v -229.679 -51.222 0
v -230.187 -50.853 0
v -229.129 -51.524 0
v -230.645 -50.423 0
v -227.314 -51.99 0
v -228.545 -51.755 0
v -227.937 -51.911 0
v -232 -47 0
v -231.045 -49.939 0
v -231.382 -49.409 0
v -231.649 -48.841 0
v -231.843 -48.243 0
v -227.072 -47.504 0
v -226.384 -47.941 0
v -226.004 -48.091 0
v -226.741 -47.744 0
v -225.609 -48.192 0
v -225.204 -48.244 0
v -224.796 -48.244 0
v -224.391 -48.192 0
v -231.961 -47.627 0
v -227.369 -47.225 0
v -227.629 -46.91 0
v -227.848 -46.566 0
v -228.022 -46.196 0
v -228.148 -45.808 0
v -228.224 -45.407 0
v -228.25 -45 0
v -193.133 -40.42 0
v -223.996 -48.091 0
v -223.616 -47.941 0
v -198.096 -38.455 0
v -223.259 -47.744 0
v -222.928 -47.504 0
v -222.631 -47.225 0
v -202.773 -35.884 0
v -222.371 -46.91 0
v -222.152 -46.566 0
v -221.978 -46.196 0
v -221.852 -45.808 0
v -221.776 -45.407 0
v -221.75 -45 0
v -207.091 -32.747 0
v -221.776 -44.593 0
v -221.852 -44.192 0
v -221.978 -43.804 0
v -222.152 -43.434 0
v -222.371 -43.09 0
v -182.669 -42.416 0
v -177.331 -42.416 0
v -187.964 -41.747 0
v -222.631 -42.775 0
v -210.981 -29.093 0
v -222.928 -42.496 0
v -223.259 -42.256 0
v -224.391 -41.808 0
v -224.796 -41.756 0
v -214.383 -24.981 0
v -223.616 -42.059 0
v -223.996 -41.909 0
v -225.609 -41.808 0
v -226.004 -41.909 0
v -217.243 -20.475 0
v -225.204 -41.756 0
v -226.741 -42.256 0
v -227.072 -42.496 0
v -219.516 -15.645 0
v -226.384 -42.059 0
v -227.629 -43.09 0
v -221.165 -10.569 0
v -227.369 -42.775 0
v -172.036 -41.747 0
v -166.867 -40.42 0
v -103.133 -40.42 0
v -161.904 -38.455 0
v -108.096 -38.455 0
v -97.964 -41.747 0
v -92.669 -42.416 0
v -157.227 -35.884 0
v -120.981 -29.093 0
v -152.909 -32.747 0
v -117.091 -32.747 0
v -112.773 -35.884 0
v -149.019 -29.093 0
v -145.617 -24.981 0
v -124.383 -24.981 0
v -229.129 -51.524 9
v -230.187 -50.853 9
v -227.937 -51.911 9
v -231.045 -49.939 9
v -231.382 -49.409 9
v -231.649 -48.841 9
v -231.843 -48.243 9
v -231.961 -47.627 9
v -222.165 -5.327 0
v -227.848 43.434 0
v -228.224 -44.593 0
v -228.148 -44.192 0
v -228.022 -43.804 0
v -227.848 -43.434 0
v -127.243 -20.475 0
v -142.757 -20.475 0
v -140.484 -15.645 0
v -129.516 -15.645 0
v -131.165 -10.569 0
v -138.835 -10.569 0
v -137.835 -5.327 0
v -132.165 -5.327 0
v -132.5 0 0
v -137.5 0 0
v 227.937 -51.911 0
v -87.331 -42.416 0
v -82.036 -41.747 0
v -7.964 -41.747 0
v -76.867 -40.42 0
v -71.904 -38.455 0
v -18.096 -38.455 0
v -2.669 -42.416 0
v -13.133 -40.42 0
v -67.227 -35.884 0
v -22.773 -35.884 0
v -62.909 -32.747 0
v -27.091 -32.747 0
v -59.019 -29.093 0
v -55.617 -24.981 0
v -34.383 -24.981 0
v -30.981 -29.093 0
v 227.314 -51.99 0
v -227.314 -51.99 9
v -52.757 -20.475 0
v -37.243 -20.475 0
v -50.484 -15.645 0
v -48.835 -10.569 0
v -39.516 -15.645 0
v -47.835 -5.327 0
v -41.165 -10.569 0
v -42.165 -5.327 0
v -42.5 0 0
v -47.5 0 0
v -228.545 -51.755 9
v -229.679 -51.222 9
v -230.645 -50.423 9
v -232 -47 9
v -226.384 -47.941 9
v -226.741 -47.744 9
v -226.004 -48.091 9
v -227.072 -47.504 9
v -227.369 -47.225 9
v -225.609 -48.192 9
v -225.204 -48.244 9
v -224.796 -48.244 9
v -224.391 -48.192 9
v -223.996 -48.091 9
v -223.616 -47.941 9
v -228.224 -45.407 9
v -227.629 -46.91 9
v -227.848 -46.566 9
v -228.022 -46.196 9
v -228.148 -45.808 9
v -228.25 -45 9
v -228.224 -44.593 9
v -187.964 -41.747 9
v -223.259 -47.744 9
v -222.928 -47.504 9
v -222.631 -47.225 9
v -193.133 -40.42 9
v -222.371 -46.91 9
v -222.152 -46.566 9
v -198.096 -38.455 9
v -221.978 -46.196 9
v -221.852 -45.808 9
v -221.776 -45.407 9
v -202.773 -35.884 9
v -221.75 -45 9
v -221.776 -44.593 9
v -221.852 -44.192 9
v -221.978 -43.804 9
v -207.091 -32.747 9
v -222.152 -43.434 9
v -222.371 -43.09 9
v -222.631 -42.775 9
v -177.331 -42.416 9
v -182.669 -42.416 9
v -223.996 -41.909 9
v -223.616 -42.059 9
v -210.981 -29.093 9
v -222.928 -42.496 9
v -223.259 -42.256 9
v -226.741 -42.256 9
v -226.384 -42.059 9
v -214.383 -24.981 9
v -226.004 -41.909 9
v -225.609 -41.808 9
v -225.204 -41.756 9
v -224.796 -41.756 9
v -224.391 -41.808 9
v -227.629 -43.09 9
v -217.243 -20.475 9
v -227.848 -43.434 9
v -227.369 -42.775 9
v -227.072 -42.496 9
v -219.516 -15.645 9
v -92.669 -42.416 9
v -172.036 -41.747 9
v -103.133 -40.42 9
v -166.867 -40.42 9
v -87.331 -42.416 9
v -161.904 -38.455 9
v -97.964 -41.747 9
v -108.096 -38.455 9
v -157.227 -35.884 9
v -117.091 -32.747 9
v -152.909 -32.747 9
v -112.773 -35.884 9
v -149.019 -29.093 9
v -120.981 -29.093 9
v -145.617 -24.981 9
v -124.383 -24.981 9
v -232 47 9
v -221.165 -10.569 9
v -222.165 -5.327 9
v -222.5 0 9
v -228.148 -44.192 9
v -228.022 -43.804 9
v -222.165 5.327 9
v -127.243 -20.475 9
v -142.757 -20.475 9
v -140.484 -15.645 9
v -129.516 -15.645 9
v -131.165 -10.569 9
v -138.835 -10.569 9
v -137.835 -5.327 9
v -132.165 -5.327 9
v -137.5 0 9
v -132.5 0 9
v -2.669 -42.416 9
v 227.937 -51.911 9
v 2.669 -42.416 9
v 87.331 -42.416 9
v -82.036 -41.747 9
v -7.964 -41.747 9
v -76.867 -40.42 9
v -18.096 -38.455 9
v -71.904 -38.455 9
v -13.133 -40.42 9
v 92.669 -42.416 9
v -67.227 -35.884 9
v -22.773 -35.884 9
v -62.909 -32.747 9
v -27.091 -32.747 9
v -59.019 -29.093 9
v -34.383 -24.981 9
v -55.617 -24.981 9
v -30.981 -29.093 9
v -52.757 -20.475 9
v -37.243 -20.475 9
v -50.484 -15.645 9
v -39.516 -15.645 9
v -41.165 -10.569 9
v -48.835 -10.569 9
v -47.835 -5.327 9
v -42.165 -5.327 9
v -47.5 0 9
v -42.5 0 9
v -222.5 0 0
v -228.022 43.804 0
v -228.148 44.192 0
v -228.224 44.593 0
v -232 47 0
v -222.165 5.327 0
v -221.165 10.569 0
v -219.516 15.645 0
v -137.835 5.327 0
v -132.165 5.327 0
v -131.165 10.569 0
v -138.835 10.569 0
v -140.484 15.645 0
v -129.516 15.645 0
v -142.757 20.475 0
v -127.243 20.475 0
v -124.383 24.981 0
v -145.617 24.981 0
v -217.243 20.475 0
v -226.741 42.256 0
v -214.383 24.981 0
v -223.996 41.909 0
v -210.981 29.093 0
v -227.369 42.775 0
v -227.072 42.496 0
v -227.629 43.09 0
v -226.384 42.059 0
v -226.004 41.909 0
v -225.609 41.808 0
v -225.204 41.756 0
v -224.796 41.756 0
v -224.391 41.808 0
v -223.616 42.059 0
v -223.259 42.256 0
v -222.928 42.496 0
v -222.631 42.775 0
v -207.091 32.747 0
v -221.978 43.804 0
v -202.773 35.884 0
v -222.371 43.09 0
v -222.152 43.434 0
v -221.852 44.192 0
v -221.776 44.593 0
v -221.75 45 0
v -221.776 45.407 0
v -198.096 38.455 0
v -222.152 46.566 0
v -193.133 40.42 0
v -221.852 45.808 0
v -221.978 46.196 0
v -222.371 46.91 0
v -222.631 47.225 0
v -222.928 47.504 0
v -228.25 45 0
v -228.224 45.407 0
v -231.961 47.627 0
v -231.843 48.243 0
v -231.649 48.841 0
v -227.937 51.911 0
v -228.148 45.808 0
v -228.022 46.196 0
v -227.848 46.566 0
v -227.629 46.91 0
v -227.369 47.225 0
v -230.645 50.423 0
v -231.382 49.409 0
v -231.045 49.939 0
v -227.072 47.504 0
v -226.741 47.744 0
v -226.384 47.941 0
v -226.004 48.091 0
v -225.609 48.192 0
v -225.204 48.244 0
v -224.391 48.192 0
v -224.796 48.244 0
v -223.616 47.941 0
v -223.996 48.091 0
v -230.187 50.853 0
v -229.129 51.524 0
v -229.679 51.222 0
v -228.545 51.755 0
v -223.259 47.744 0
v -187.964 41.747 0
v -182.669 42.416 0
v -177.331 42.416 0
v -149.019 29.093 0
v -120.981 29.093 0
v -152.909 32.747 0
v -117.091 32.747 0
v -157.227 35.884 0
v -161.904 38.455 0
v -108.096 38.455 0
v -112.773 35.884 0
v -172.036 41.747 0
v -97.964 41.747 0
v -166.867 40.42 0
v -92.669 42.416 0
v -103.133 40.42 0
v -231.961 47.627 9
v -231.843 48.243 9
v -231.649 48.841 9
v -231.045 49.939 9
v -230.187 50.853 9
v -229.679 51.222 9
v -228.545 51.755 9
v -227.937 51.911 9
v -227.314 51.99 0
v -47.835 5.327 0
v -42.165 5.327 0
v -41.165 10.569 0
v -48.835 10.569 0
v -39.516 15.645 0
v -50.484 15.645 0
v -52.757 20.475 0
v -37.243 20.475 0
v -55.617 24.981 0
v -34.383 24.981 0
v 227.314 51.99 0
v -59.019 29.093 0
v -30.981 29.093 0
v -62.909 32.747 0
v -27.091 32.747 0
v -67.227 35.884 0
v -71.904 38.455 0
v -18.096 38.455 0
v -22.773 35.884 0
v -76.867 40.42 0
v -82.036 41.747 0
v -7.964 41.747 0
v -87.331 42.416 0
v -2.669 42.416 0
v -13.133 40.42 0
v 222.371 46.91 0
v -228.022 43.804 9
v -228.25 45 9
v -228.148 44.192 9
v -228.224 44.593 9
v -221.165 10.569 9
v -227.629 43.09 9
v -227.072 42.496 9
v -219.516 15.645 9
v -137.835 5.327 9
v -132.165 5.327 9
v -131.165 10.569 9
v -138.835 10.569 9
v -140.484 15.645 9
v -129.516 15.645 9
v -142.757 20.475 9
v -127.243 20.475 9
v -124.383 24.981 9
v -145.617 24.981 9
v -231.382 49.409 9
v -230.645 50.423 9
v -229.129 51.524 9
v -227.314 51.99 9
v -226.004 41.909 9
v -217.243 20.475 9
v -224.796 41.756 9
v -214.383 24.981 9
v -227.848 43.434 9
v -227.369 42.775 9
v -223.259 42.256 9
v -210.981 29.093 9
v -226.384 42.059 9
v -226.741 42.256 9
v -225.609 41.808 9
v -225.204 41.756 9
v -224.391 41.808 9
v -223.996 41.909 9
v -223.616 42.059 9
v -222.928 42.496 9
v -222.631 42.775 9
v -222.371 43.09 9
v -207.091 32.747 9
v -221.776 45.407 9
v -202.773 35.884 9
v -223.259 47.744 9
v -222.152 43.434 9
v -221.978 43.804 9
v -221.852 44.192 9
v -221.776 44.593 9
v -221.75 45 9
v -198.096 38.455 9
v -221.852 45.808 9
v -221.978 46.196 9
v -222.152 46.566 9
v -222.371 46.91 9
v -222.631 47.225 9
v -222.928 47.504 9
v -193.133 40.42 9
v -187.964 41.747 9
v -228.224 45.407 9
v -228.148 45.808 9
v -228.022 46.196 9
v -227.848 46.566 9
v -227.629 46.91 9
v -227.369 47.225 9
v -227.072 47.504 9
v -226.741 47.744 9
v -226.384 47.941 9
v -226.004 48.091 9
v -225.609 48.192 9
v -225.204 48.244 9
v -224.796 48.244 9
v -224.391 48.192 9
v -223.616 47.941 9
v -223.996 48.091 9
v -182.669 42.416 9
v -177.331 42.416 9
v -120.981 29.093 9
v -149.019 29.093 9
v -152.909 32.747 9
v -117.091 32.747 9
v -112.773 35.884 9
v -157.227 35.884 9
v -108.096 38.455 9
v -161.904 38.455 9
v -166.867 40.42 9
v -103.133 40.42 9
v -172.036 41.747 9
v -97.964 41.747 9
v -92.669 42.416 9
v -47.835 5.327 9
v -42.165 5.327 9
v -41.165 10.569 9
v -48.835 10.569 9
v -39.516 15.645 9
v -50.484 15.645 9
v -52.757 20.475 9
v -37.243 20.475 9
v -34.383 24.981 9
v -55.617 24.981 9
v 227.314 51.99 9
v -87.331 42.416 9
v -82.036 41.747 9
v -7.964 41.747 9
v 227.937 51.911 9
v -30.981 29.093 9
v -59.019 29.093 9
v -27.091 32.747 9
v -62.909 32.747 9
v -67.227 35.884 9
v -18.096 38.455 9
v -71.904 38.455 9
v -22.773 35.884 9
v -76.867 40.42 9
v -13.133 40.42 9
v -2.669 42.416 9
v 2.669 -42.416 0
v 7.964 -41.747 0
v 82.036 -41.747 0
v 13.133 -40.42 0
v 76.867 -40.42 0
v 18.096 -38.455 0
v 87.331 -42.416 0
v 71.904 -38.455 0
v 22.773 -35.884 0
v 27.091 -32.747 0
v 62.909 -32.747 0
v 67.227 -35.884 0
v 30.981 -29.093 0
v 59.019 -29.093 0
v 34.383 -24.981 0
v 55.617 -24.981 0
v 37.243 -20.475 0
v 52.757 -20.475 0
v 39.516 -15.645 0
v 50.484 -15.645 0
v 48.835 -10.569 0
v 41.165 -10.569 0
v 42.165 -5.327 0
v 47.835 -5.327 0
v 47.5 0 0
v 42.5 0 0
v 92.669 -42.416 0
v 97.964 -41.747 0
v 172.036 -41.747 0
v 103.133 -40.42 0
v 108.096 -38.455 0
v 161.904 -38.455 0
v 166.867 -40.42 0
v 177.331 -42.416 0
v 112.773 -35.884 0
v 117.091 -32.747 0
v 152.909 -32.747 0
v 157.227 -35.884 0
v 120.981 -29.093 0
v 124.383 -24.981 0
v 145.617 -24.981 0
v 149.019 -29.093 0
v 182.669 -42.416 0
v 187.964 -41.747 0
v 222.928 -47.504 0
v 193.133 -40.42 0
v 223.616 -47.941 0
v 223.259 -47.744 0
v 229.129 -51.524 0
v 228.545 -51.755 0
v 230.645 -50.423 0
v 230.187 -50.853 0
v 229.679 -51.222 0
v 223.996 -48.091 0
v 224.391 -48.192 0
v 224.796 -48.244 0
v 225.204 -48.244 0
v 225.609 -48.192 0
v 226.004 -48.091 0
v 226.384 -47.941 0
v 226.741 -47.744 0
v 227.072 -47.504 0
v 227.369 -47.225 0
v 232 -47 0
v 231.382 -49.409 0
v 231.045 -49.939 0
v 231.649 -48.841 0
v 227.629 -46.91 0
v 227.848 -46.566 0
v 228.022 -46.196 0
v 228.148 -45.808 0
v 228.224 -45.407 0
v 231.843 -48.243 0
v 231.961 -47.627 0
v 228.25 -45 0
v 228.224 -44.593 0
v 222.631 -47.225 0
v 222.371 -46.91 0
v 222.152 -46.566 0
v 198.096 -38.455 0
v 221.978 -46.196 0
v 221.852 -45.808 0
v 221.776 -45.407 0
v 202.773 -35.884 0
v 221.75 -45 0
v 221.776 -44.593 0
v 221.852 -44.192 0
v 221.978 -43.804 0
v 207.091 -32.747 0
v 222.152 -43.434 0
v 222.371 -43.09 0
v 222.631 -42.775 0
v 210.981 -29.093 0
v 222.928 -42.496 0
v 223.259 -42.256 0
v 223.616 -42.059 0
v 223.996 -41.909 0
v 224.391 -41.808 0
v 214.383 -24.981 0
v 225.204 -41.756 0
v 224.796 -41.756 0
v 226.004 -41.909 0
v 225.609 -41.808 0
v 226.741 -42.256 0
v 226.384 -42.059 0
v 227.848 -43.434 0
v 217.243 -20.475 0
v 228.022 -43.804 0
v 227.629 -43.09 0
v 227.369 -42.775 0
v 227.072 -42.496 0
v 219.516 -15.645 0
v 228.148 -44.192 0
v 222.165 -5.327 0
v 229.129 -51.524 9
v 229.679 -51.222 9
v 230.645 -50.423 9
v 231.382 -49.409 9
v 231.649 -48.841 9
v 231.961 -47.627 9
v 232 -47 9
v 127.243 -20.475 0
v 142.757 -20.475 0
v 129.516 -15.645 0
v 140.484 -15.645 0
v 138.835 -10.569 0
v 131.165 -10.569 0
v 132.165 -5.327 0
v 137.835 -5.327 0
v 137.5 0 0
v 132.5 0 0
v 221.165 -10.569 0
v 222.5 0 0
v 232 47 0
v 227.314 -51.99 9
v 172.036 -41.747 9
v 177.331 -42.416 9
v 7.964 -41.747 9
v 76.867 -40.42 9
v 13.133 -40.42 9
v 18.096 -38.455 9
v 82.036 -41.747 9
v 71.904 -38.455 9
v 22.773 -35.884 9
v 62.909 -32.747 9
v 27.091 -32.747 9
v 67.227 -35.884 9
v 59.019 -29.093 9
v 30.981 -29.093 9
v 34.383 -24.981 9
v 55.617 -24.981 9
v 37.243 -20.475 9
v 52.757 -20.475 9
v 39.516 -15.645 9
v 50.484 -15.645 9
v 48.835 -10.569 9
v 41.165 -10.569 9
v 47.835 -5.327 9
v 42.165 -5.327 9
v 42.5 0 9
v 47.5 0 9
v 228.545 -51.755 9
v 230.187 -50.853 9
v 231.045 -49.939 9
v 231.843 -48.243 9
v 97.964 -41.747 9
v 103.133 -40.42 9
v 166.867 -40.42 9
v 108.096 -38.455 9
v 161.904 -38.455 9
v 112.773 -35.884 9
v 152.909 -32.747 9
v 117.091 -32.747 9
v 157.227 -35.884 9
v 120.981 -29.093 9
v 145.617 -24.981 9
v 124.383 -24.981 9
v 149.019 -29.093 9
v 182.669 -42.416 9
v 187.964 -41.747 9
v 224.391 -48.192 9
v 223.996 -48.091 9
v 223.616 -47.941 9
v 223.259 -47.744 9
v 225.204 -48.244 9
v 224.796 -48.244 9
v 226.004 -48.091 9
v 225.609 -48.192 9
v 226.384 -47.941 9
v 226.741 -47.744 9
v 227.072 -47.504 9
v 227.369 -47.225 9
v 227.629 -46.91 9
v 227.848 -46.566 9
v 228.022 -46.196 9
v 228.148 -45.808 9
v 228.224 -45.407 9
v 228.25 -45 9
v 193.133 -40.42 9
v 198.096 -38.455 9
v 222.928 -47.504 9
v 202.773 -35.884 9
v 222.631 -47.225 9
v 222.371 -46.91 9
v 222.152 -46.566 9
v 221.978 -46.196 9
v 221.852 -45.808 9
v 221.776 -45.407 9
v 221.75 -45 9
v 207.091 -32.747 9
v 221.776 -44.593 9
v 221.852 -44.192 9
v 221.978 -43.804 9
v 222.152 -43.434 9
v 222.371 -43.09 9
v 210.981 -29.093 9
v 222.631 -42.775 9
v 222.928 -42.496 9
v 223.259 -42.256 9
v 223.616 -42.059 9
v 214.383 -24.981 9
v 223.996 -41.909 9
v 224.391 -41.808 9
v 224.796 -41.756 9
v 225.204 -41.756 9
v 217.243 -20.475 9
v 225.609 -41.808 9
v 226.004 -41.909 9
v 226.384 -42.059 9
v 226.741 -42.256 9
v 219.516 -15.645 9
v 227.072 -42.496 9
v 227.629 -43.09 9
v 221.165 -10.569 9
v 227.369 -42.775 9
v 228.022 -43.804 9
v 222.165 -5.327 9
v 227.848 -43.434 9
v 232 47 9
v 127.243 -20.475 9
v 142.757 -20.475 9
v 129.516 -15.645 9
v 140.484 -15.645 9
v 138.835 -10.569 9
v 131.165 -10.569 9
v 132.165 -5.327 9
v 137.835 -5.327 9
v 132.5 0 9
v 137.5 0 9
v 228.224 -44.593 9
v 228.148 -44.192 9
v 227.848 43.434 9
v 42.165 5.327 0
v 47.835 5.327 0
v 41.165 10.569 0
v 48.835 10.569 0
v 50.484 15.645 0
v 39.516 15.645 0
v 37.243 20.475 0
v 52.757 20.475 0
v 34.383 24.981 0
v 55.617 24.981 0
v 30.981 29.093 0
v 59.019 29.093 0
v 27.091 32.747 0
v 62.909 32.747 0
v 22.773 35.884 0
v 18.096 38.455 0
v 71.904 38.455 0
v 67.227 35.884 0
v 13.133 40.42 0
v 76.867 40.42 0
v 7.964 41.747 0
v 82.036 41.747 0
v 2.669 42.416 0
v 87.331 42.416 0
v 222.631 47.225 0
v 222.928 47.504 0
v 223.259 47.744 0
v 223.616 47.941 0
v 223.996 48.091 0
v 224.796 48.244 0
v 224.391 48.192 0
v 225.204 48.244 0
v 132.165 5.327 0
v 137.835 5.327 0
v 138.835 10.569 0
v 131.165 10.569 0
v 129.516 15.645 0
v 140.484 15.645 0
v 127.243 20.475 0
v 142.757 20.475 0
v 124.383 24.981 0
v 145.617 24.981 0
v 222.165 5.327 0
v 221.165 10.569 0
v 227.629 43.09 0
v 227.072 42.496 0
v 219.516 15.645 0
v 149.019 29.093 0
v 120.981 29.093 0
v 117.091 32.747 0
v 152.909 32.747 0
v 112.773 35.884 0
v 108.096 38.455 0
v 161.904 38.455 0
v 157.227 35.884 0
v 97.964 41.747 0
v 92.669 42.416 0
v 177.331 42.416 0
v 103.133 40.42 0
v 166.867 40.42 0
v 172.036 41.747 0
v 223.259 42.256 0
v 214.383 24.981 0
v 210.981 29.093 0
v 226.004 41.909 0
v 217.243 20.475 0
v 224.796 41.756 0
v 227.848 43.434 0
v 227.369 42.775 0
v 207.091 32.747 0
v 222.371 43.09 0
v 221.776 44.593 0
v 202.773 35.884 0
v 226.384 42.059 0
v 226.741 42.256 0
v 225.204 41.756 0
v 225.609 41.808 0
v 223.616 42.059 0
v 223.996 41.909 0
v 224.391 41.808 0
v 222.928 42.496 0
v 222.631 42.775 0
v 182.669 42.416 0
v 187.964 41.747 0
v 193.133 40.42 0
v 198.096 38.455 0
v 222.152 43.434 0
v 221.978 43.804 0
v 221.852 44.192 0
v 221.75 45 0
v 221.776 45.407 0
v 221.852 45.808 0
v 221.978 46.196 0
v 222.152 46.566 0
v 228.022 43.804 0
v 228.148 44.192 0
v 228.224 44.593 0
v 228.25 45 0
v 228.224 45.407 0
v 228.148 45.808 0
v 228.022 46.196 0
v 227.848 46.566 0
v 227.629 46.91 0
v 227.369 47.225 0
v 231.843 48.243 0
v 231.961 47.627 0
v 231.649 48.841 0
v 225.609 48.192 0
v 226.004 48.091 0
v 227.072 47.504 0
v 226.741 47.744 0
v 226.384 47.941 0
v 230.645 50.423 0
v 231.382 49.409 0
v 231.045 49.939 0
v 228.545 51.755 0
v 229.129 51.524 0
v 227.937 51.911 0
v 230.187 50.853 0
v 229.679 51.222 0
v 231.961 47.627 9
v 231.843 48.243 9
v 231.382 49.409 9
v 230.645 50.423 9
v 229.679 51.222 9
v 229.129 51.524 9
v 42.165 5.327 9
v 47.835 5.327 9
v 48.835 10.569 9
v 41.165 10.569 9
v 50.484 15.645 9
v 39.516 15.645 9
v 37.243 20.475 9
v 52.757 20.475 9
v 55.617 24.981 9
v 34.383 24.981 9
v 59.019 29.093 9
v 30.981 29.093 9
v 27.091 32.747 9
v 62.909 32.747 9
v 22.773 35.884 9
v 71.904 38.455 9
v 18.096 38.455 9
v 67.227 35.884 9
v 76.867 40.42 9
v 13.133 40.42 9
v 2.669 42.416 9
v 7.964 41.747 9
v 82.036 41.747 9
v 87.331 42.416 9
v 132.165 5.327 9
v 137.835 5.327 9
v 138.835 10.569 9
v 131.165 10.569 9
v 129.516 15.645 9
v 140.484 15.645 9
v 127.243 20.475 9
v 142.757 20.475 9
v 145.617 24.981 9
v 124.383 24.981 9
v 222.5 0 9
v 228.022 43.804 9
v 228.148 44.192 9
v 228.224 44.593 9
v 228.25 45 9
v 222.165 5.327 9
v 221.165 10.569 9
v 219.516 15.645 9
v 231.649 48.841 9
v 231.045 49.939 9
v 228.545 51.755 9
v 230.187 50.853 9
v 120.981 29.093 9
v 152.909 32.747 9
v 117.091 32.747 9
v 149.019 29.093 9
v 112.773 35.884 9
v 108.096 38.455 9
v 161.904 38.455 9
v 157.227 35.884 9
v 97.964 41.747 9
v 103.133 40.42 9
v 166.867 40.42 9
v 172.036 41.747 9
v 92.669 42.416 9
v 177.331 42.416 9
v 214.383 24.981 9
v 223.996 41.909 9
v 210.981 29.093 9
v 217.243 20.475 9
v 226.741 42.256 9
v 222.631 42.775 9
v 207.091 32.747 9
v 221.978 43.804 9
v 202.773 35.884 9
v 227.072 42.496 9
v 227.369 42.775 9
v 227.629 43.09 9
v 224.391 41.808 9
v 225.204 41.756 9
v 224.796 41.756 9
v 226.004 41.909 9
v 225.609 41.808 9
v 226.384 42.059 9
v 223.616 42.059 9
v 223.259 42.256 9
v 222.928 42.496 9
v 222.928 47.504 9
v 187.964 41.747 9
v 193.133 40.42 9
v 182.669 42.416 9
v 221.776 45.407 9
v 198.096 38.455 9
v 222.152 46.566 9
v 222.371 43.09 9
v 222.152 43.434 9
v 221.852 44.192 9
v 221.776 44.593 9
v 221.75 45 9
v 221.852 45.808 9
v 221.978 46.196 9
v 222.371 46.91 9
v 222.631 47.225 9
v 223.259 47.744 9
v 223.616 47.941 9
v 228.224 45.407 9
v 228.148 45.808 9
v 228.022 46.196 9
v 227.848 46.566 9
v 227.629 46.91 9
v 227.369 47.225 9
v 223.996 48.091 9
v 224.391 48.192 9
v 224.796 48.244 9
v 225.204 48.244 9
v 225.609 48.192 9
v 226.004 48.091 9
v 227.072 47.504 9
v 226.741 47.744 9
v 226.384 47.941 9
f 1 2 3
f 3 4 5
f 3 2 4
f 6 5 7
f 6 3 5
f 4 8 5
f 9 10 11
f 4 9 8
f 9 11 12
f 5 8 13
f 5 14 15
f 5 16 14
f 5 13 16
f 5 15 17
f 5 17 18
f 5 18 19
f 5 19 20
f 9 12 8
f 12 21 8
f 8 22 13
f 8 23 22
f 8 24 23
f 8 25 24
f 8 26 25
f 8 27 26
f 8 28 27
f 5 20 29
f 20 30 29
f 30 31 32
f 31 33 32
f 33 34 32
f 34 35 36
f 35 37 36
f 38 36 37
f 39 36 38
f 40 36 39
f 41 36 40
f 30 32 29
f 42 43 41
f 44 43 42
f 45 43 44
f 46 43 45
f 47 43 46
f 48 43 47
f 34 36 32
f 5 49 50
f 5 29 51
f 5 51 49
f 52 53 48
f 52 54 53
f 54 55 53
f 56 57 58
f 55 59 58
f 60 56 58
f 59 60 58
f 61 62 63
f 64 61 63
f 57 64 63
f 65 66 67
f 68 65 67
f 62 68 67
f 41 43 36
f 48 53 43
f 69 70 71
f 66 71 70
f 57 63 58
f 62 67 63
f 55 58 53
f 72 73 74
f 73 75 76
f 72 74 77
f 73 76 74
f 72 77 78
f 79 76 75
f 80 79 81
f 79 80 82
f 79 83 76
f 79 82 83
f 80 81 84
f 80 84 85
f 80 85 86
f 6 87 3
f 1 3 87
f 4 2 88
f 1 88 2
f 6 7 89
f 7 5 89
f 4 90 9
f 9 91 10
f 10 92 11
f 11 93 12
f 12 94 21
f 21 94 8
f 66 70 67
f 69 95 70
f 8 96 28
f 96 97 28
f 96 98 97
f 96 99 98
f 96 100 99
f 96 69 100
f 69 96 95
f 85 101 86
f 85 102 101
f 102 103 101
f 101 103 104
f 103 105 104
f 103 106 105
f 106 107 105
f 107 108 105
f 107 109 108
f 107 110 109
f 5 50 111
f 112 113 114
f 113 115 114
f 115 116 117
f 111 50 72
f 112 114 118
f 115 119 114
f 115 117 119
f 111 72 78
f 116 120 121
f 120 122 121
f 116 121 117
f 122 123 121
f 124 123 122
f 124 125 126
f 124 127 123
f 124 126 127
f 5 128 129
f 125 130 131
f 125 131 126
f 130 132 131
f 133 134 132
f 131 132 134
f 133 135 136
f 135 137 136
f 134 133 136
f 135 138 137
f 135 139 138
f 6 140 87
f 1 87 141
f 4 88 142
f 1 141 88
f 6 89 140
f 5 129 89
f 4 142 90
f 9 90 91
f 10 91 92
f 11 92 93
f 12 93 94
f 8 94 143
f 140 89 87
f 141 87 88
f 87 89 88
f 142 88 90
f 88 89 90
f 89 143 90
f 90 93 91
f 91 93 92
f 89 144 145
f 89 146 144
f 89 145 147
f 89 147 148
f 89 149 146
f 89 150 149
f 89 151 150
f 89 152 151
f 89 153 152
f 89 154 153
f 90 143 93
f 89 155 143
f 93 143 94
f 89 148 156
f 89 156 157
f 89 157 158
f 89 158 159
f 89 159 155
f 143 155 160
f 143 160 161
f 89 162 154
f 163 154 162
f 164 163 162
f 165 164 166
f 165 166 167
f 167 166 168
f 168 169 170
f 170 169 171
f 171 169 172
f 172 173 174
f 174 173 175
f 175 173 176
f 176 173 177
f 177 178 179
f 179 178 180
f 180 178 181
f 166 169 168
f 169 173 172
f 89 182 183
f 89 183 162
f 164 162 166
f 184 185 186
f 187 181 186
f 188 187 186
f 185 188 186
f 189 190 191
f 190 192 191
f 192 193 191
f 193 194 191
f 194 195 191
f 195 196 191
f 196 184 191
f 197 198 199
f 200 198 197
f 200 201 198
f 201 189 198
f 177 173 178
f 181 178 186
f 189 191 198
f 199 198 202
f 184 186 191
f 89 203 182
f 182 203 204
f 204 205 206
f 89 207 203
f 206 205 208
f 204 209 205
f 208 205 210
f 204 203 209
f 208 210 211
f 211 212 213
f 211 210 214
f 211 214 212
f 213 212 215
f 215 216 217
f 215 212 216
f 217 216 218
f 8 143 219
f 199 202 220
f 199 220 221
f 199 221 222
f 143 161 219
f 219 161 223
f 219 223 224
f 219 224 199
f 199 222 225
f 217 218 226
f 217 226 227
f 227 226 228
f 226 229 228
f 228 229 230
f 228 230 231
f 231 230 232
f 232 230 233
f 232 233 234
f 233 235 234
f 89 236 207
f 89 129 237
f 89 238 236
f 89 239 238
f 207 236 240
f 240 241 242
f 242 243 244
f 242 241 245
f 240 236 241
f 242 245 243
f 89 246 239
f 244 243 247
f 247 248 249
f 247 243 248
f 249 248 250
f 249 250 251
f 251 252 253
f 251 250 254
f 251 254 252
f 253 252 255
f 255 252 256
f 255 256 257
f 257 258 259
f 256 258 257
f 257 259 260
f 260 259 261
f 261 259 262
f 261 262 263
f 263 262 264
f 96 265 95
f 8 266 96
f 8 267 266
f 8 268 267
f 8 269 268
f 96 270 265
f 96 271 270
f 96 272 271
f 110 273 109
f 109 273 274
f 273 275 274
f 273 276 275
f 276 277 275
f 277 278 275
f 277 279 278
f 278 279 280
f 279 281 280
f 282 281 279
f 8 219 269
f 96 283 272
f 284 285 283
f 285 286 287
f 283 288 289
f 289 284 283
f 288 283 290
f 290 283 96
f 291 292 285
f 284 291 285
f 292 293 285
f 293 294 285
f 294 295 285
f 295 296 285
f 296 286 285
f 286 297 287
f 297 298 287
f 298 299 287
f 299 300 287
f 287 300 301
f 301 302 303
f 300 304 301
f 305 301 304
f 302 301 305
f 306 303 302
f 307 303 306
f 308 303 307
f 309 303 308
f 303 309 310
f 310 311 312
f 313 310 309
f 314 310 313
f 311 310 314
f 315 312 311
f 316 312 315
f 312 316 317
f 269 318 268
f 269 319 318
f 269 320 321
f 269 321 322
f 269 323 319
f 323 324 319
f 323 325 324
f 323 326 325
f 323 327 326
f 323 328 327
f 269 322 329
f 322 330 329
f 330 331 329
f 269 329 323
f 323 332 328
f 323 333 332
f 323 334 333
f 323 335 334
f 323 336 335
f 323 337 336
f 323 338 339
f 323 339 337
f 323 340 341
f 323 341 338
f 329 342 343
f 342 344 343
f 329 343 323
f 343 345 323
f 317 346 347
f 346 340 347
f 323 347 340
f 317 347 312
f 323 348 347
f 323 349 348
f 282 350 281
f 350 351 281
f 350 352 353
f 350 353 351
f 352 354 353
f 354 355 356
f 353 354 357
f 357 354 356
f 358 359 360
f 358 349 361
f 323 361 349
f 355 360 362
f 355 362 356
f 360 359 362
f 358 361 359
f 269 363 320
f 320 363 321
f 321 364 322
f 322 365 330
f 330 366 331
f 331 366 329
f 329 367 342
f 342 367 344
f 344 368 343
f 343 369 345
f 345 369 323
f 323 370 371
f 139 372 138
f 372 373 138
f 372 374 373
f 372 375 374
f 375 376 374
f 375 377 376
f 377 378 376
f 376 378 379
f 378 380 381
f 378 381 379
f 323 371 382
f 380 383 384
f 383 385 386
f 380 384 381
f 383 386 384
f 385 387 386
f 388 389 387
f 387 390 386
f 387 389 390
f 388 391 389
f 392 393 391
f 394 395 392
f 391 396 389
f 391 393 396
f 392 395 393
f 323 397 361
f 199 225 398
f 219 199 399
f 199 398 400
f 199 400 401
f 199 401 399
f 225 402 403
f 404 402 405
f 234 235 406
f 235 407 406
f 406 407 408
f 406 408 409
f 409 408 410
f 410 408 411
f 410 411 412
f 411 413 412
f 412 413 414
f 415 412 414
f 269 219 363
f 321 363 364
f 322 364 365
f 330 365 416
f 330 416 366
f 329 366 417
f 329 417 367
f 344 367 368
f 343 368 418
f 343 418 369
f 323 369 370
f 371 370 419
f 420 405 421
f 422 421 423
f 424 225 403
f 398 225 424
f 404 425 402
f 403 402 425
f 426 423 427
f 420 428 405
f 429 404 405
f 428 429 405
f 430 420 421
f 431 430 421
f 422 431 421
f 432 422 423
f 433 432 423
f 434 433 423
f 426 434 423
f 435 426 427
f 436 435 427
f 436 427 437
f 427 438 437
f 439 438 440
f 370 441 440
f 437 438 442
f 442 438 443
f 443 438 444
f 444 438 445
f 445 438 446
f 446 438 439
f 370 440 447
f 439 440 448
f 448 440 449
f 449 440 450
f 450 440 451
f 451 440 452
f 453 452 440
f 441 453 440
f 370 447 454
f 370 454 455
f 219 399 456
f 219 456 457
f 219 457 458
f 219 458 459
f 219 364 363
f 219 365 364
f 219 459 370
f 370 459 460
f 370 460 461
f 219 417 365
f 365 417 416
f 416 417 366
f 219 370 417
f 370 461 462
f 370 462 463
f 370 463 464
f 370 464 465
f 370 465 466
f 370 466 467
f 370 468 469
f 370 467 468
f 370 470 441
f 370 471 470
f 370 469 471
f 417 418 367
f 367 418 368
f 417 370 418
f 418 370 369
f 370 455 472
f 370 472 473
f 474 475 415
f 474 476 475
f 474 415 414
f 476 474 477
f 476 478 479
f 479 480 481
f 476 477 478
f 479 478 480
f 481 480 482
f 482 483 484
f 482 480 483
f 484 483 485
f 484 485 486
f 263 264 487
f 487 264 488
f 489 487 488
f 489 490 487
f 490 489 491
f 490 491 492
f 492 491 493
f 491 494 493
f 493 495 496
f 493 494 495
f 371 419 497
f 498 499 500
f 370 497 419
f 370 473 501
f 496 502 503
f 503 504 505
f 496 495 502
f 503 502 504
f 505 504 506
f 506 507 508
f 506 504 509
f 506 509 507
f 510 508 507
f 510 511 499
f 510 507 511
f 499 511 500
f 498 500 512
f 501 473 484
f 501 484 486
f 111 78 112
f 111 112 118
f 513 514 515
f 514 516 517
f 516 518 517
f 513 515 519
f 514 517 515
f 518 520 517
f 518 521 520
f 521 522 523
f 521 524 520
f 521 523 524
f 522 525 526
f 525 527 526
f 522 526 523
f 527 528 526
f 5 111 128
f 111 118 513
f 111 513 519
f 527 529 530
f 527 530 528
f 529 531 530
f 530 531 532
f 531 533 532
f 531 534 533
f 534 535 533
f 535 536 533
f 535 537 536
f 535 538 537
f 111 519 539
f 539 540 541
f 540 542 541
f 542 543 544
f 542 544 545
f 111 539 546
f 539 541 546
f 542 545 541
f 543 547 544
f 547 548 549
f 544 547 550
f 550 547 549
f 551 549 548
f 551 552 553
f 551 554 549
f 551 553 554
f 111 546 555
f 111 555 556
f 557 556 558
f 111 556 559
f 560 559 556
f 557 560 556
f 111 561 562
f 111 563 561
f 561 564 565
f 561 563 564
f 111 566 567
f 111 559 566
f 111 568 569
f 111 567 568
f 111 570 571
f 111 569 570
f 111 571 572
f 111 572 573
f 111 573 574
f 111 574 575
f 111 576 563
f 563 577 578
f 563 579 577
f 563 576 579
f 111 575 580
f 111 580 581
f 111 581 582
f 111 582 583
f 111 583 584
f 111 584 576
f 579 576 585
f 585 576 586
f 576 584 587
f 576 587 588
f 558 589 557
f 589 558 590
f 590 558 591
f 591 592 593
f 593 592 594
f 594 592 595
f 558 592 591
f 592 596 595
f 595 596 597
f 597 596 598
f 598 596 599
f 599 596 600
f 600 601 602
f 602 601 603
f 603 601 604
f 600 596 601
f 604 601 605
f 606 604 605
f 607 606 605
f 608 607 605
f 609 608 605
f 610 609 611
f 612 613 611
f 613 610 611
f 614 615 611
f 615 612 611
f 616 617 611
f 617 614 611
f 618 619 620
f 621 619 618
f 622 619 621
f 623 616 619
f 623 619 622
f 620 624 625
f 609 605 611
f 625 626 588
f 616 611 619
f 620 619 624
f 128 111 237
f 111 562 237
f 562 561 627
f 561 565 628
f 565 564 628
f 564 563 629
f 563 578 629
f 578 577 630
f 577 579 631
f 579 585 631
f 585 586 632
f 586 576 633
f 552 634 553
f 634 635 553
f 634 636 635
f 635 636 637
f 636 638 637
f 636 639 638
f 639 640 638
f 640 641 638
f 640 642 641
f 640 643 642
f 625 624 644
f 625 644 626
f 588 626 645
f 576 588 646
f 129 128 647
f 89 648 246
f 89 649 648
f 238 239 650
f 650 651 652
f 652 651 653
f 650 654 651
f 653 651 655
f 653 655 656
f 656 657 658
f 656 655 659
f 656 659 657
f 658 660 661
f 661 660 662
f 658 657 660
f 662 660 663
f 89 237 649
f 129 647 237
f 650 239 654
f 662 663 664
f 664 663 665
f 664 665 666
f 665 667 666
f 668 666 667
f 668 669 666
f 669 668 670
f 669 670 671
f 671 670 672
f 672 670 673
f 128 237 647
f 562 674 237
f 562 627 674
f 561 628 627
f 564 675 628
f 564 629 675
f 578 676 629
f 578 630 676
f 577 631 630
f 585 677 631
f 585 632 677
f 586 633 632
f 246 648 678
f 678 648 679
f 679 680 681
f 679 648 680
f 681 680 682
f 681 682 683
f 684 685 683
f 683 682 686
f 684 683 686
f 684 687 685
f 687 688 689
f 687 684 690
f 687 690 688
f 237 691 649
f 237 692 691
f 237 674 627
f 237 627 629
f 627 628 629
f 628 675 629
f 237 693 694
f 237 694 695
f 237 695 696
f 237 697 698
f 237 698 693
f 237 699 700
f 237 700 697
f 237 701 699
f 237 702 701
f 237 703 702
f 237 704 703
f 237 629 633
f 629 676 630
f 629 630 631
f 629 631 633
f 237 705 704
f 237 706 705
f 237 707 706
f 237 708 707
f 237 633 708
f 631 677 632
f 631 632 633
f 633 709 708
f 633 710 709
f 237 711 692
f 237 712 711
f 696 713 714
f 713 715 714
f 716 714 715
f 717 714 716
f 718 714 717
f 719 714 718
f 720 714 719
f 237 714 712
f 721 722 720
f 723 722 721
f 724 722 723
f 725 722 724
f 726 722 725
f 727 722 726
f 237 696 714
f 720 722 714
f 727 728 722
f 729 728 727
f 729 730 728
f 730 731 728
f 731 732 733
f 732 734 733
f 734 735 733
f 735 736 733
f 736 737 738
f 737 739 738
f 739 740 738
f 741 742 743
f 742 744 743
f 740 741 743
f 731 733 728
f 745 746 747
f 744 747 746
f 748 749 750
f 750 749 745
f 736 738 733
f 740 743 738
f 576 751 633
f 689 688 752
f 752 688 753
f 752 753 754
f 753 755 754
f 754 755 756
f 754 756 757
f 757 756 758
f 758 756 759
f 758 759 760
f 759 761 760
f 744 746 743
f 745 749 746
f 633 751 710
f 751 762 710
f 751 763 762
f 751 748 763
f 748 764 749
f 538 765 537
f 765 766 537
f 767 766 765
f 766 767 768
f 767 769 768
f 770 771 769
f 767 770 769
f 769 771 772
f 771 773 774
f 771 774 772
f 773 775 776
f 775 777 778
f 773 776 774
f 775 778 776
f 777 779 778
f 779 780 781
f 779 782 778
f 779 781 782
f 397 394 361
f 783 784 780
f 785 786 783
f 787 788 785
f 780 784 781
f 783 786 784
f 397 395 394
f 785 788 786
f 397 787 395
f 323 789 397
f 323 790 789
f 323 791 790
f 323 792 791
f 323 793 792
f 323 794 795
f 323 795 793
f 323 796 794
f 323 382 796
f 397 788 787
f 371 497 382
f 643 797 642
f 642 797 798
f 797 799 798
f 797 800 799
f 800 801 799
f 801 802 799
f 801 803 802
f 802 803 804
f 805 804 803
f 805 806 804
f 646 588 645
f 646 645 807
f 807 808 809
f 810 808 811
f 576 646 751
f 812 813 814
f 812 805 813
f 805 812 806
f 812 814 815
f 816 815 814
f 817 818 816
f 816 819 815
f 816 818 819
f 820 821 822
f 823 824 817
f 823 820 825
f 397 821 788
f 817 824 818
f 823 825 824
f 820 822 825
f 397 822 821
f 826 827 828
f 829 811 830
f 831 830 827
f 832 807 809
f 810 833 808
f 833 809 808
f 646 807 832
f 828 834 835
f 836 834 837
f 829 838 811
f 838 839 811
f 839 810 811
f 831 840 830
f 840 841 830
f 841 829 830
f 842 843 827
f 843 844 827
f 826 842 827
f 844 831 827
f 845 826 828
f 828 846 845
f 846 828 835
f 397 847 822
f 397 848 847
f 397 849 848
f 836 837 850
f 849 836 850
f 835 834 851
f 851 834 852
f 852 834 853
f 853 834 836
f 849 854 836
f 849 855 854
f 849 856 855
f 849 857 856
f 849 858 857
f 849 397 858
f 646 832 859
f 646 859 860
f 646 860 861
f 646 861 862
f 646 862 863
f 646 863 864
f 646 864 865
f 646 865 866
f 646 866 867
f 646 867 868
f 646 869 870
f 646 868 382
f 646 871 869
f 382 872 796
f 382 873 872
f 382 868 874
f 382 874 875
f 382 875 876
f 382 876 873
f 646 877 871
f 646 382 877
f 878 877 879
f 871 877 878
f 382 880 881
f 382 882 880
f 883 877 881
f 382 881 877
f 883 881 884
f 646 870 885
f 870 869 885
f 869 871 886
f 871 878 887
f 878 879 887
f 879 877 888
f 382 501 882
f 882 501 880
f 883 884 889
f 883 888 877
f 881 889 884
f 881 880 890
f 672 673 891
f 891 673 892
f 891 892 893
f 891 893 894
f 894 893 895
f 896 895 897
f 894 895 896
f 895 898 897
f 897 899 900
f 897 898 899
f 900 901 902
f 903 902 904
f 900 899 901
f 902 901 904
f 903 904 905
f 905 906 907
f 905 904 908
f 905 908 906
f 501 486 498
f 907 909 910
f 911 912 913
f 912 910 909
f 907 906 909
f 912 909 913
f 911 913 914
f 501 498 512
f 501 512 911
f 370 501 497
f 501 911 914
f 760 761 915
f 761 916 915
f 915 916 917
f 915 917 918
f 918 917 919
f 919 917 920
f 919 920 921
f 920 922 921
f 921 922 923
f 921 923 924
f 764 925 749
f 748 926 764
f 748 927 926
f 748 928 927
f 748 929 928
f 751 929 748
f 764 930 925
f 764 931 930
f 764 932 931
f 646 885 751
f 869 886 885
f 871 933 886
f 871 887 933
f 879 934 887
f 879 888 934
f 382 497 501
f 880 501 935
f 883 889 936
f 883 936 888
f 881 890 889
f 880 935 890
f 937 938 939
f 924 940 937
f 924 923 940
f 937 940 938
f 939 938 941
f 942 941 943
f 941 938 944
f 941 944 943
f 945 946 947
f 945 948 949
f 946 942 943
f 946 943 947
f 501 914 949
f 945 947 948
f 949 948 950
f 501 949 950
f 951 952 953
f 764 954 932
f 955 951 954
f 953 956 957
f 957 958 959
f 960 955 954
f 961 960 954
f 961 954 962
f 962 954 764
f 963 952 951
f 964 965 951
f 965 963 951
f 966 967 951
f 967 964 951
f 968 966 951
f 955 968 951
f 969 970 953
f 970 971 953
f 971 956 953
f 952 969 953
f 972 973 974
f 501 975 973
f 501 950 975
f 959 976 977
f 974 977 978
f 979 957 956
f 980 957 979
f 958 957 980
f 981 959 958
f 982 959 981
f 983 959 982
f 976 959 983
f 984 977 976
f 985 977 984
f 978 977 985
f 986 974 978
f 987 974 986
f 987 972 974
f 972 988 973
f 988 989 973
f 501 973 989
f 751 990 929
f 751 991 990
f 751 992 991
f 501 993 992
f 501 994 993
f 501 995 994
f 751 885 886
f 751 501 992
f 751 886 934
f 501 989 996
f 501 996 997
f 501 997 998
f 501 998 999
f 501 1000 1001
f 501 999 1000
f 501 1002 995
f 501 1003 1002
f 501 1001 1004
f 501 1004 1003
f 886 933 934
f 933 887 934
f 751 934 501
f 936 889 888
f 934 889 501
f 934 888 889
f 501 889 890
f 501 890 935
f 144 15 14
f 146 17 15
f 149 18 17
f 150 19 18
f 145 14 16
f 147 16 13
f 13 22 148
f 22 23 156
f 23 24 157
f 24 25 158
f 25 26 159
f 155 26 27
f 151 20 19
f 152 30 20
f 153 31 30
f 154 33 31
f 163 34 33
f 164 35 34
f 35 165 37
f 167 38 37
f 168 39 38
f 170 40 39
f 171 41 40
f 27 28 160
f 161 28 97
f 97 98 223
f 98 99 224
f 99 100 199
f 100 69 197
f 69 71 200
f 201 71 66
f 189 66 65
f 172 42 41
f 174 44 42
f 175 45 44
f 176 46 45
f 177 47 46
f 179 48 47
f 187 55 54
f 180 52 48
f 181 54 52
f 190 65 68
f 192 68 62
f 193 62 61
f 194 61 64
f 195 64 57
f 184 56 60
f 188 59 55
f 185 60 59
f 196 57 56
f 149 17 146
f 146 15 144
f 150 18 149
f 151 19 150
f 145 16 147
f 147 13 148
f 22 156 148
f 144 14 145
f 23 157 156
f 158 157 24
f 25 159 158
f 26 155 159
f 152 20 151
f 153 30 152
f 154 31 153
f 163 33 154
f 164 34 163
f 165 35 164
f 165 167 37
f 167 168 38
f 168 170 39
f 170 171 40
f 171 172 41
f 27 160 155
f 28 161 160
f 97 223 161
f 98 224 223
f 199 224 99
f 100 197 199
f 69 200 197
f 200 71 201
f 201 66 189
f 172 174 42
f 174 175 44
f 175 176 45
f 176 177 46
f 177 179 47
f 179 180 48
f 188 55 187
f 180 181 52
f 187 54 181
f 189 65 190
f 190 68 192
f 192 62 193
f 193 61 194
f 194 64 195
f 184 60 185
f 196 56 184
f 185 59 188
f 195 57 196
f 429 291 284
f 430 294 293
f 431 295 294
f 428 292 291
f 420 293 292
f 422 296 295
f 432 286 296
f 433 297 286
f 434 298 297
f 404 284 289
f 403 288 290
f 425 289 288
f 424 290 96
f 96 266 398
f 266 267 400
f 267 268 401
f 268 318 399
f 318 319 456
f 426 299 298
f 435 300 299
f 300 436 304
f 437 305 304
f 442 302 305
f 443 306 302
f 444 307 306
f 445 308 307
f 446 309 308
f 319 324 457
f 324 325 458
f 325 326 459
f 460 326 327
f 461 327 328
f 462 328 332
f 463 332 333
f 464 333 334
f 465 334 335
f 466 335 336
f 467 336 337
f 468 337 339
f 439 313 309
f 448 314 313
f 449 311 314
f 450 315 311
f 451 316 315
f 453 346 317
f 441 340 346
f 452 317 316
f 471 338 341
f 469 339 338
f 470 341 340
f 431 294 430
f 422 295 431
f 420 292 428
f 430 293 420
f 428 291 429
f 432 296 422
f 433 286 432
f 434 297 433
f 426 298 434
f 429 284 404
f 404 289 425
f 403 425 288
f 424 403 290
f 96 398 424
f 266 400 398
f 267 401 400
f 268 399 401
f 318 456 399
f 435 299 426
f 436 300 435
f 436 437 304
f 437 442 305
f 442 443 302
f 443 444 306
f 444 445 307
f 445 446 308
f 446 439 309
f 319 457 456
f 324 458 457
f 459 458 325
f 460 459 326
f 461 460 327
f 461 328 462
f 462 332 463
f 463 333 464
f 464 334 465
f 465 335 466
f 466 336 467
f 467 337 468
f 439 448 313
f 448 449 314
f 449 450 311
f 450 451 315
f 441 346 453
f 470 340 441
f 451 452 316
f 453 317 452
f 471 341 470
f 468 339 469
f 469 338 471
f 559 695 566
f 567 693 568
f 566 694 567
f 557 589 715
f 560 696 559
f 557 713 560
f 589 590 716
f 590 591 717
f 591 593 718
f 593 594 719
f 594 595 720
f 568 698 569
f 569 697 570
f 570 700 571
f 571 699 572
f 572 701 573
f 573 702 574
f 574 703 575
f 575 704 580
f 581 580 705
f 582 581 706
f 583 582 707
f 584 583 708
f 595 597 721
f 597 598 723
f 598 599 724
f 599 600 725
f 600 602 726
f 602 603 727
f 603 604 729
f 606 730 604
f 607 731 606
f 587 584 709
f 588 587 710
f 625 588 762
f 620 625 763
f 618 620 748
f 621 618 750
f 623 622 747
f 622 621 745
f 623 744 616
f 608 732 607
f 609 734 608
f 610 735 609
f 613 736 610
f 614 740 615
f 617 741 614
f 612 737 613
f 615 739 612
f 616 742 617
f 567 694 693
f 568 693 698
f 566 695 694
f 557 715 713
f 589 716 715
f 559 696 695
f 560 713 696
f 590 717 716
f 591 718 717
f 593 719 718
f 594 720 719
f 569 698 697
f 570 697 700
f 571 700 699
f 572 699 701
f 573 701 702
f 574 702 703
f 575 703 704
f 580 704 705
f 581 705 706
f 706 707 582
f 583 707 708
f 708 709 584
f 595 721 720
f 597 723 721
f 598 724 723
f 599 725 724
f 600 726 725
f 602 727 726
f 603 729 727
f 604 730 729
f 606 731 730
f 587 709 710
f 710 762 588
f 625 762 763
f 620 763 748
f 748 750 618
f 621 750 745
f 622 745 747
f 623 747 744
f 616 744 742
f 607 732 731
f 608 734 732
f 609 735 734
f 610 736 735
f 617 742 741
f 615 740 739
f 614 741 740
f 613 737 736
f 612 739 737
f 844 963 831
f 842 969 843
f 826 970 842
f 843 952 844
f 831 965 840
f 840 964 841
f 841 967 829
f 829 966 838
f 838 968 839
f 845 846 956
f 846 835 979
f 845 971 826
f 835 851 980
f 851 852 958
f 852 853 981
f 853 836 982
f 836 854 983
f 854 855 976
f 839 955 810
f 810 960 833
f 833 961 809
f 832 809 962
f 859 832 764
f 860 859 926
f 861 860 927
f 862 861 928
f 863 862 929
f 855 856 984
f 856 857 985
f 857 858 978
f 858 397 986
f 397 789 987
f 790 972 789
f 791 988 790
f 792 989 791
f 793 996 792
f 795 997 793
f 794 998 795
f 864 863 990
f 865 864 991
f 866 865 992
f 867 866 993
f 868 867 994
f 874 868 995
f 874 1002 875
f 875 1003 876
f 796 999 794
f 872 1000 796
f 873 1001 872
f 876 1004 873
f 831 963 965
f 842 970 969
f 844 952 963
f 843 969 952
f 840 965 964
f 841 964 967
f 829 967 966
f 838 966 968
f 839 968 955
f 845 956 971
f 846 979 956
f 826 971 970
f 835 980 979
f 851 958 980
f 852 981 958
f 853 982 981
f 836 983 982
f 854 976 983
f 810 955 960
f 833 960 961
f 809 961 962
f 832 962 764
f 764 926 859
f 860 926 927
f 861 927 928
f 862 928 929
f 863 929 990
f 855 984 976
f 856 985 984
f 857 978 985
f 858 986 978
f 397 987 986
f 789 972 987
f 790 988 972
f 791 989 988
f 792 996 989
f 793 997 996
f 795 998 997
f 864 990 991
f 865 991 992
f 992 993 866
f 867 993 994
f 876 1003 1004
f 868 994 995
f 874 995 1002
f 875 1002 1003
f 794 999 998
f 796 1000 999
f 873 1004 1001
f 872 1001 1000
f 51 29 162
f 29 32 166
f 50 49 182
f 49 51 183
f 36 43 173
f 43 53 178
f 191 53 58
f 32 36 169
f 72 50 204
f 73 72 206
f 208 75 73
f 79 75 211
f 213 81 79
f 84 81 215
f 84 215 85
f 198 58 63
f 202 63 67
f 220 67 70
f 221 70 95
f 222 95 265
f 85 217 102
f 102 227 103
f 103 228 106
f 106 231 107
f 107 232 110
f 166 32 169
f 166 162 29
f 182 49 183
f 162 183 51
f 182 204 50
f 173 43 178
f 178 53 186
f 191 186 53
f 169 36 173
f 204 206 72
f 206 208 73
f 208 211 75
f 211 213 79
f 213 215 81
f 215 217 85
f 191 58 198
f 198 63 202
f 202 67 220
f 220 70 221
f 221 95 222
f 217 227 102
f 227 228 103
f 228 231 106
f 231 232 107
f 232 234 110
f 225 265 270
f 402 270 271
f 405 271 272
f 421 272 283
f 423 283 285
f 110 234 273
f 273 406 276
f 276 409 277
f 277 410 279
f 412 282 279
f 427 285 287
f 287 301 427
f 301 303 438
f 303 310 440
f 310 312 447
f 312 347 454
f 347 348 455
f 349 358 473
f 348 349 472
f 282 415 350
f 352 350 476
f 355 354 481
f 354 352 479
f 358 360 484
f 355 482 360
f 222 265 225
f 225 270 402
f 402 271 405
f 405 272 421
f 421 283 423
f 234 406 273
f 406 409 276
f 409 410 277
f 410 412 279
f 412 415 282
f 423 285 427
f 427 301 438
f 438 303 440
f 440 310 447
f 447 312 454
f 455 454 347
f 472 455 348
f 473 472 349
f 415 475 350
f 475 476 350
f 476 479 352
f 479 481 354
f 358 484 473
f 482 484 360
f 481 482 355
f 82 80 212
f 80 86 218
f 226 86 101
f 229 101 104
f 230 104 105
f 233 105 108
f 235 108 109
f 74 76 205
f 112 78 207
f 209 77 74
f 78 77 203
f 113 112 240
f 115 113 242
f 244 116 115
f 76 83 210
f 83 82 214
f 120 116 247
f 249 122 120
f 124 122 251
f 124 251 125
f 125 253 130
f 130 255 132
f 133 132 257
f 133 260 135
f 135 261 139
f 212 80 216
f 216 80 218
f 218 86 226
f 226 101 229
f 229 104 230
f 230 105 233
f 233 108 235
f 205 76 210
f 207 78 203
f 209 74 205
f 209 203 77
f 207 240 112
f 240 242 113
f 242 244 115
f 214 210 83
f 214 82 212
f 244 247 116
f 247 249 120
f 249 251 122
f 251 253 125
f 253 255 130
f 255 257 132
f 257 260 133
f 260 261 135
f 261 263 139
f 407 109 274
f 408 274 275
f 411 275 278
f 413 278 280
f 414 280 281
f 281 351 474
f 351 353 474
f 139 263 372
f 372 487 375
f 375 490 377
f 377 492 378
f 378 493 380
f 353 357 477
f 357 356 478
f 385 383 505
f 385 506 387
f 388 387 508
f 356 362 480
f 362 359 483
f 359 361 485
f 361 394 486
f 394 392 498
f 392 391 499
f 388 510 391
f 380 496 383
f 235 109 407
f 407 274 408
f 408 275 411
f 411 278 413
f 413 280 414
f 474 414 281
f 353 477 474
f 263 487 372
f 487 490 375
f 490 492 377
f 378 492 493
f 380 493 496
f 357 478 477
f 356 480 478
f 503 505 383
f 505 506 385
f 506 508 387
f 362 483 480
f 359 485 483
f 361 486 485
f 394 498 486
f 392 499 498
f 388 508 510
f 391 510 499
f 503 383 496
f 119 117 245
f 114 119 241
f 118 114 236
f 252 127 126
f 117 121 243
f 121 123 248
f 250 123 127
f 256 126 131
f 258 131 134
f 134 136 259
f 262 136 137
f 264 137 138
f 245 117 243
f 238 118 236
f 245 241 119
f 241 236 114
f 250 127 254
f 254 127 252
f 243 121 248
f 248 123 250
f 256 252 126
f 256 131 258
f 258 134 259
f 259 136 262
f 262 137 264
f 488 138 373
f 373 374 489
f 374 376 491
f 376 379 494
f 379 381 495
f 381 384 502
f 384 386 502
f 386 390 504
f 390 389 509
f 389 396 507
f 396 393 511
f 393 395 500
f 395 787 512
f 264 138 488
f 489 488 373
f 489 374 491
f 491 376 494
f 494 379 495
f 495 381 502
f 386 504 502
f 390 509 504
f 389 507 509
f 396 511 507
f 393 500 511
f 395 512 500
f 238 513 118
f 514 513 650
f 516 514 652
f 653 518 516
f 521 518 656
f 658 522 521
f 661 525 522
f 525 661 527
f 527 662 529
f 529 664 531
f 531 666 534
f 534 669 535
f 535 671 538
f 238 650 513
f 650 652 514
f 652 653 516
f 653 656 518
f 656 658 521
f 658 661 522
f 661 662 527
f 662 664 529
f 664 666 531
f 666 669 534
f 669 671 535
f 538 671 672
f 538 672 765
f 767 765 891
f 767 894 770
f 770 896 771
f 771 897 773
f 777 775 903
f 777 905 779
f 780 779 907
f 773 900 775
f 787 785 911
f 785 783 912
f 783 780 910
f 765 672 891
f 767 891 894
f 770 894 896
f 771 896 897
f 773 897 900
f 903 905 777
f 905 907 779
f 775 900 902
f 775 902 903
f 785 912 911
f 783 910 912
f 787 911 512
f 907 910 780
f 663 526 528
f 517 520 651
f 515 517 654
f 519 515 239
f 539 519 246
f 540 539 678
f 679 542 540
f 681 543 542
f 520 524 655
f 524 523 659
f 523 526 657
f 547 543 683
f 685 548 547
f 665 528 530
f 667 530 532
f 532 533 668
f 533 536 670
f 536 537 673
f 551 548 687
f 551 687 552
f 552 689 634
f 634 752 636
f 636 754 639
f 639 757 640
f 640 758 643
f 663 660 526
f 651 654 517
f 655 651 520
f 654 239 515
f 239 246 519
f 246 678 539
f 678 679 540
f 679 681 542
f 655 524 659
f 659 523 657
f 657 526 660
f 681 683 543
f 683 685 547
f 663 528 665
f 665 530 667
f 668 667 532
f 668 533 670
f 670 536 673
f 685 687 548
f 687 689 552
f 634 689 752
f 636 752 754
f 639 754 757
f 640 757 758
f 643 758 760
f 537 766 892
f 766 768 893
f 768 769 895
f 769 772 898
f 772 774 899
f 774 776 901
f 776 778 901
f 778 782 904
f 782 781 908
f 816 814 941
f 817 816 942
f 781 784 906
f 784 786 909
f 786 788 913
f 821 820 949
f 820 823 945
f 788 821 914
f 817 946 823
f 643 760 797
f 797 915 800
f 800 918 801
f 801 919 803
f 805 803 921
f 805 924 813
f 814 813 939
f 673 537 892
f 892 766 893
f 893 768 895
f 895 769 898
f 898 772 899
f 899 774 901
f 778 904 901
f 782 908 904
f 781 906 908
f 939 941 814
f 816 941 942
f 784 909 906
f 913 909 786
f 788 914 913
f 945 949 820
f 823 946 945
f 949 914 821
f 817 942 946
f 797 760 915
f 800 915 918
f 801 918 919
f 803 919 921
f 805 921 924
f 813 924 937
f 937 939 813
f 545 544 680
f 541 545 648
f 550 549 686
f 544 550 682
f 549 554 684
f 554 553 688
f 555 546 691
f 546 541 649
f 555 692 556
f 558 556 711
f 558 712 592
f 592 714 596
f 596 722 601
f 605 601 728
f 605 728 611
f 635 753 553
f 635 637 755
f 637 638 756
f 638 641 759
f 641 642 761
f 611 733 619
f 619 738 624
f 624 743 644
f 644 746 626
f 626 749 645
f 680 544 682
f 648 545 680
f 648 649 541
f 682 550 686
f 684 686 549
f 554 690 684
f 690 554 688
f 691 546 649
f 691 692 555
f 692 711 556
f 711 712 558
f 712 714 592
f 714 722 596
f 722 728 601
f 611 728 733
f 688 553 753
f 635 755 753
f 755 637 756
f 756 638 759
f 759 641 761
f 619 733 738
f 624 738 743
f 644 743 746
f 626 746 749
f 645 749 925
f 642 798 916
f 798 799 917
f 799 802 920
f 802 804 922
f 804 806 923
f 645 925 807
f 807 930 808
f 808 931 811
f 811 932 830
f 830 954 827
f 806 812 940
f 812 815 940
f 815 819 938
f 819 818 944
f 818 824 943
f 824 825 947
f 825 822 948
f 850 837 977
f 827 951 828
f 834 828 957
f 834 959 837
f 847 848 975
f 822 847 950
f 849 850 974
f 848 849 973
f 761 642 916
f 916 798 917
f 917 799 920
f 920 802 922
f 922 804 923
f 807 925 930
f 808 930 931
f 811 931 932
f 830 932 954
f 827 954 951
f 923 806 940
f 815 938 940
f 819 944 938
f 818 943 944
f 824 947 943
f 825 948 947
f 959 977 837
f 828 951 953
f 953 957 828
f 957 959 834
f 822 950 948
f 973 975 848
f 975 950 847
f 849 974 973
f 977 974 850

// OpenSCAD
$fn = 50;

difference() {
	union() {
		hull() {
			translate(v = [-227.0, 47.0, 0]) {
				cylinder(h = 9, r = 5);
			}
			translate(v = [227.0, 47.0, 0]) {
				cylinder(h = 9, r = 5);
			}
			translate(v = [-227.0, -47.0, 0]) {
				cylinder(h = 9, r = 5);
			}
			translate(v = [227.0, -47.0, 0]) {
				cylinder(h = 9, r = 5);
			}
		}
	}
	union() {
		translate(v = [-225.0, -45.0, -100.0]) {
			cylinder(h = 200, r = 3.25);
		}
		translate(v = [-225.0, 45.0, -100.0]) {
			cylinder(h = 200, r = 3.25);
		}
		translate(v = [225.0, -45.0, -100.0]) {
			cylinder(h = 200, r = 3.25);
		}
		translate(v = [225.0, 45.0, -100.0]) {
			cylinder(h = 200, r = 3.25);
		}
		translate(v = [-225.0, -45.0, -100.0]) {
			cylinder(h = 200, r = 1.8);
		}
		translate(v = [-225.0, 45.0, -100.0]) {
			cylinder(h = 200, r = 1.8);
		}
		translate(v = [225.0, -45.0, -100.0]) {
			cylinder(h = 200, r = 1.8);
		}
		translate(v = [225.0, 45.0, -100.0]) {
			cylinder(h = 200, r = 1.8);
		}
		translate(v = [-180.0, 0, 0.0]) {
			cylinder(h = 9, r = 42.5);
		}
		translate(v = [-90.0, 0, 0.0]) {
			cylinder(h = 9, r = 42.5);
		}
		cylinder(h = 9, r = 42.5);
		translate(v = [90.0, 0, 0.0]) {
			cylinder(h = 9, r = 42.5);
		}
		translate(v = [180.0, 0, 0.0]) {
			cylinder(h = 9, r = 42.5);
		}
	}
}
